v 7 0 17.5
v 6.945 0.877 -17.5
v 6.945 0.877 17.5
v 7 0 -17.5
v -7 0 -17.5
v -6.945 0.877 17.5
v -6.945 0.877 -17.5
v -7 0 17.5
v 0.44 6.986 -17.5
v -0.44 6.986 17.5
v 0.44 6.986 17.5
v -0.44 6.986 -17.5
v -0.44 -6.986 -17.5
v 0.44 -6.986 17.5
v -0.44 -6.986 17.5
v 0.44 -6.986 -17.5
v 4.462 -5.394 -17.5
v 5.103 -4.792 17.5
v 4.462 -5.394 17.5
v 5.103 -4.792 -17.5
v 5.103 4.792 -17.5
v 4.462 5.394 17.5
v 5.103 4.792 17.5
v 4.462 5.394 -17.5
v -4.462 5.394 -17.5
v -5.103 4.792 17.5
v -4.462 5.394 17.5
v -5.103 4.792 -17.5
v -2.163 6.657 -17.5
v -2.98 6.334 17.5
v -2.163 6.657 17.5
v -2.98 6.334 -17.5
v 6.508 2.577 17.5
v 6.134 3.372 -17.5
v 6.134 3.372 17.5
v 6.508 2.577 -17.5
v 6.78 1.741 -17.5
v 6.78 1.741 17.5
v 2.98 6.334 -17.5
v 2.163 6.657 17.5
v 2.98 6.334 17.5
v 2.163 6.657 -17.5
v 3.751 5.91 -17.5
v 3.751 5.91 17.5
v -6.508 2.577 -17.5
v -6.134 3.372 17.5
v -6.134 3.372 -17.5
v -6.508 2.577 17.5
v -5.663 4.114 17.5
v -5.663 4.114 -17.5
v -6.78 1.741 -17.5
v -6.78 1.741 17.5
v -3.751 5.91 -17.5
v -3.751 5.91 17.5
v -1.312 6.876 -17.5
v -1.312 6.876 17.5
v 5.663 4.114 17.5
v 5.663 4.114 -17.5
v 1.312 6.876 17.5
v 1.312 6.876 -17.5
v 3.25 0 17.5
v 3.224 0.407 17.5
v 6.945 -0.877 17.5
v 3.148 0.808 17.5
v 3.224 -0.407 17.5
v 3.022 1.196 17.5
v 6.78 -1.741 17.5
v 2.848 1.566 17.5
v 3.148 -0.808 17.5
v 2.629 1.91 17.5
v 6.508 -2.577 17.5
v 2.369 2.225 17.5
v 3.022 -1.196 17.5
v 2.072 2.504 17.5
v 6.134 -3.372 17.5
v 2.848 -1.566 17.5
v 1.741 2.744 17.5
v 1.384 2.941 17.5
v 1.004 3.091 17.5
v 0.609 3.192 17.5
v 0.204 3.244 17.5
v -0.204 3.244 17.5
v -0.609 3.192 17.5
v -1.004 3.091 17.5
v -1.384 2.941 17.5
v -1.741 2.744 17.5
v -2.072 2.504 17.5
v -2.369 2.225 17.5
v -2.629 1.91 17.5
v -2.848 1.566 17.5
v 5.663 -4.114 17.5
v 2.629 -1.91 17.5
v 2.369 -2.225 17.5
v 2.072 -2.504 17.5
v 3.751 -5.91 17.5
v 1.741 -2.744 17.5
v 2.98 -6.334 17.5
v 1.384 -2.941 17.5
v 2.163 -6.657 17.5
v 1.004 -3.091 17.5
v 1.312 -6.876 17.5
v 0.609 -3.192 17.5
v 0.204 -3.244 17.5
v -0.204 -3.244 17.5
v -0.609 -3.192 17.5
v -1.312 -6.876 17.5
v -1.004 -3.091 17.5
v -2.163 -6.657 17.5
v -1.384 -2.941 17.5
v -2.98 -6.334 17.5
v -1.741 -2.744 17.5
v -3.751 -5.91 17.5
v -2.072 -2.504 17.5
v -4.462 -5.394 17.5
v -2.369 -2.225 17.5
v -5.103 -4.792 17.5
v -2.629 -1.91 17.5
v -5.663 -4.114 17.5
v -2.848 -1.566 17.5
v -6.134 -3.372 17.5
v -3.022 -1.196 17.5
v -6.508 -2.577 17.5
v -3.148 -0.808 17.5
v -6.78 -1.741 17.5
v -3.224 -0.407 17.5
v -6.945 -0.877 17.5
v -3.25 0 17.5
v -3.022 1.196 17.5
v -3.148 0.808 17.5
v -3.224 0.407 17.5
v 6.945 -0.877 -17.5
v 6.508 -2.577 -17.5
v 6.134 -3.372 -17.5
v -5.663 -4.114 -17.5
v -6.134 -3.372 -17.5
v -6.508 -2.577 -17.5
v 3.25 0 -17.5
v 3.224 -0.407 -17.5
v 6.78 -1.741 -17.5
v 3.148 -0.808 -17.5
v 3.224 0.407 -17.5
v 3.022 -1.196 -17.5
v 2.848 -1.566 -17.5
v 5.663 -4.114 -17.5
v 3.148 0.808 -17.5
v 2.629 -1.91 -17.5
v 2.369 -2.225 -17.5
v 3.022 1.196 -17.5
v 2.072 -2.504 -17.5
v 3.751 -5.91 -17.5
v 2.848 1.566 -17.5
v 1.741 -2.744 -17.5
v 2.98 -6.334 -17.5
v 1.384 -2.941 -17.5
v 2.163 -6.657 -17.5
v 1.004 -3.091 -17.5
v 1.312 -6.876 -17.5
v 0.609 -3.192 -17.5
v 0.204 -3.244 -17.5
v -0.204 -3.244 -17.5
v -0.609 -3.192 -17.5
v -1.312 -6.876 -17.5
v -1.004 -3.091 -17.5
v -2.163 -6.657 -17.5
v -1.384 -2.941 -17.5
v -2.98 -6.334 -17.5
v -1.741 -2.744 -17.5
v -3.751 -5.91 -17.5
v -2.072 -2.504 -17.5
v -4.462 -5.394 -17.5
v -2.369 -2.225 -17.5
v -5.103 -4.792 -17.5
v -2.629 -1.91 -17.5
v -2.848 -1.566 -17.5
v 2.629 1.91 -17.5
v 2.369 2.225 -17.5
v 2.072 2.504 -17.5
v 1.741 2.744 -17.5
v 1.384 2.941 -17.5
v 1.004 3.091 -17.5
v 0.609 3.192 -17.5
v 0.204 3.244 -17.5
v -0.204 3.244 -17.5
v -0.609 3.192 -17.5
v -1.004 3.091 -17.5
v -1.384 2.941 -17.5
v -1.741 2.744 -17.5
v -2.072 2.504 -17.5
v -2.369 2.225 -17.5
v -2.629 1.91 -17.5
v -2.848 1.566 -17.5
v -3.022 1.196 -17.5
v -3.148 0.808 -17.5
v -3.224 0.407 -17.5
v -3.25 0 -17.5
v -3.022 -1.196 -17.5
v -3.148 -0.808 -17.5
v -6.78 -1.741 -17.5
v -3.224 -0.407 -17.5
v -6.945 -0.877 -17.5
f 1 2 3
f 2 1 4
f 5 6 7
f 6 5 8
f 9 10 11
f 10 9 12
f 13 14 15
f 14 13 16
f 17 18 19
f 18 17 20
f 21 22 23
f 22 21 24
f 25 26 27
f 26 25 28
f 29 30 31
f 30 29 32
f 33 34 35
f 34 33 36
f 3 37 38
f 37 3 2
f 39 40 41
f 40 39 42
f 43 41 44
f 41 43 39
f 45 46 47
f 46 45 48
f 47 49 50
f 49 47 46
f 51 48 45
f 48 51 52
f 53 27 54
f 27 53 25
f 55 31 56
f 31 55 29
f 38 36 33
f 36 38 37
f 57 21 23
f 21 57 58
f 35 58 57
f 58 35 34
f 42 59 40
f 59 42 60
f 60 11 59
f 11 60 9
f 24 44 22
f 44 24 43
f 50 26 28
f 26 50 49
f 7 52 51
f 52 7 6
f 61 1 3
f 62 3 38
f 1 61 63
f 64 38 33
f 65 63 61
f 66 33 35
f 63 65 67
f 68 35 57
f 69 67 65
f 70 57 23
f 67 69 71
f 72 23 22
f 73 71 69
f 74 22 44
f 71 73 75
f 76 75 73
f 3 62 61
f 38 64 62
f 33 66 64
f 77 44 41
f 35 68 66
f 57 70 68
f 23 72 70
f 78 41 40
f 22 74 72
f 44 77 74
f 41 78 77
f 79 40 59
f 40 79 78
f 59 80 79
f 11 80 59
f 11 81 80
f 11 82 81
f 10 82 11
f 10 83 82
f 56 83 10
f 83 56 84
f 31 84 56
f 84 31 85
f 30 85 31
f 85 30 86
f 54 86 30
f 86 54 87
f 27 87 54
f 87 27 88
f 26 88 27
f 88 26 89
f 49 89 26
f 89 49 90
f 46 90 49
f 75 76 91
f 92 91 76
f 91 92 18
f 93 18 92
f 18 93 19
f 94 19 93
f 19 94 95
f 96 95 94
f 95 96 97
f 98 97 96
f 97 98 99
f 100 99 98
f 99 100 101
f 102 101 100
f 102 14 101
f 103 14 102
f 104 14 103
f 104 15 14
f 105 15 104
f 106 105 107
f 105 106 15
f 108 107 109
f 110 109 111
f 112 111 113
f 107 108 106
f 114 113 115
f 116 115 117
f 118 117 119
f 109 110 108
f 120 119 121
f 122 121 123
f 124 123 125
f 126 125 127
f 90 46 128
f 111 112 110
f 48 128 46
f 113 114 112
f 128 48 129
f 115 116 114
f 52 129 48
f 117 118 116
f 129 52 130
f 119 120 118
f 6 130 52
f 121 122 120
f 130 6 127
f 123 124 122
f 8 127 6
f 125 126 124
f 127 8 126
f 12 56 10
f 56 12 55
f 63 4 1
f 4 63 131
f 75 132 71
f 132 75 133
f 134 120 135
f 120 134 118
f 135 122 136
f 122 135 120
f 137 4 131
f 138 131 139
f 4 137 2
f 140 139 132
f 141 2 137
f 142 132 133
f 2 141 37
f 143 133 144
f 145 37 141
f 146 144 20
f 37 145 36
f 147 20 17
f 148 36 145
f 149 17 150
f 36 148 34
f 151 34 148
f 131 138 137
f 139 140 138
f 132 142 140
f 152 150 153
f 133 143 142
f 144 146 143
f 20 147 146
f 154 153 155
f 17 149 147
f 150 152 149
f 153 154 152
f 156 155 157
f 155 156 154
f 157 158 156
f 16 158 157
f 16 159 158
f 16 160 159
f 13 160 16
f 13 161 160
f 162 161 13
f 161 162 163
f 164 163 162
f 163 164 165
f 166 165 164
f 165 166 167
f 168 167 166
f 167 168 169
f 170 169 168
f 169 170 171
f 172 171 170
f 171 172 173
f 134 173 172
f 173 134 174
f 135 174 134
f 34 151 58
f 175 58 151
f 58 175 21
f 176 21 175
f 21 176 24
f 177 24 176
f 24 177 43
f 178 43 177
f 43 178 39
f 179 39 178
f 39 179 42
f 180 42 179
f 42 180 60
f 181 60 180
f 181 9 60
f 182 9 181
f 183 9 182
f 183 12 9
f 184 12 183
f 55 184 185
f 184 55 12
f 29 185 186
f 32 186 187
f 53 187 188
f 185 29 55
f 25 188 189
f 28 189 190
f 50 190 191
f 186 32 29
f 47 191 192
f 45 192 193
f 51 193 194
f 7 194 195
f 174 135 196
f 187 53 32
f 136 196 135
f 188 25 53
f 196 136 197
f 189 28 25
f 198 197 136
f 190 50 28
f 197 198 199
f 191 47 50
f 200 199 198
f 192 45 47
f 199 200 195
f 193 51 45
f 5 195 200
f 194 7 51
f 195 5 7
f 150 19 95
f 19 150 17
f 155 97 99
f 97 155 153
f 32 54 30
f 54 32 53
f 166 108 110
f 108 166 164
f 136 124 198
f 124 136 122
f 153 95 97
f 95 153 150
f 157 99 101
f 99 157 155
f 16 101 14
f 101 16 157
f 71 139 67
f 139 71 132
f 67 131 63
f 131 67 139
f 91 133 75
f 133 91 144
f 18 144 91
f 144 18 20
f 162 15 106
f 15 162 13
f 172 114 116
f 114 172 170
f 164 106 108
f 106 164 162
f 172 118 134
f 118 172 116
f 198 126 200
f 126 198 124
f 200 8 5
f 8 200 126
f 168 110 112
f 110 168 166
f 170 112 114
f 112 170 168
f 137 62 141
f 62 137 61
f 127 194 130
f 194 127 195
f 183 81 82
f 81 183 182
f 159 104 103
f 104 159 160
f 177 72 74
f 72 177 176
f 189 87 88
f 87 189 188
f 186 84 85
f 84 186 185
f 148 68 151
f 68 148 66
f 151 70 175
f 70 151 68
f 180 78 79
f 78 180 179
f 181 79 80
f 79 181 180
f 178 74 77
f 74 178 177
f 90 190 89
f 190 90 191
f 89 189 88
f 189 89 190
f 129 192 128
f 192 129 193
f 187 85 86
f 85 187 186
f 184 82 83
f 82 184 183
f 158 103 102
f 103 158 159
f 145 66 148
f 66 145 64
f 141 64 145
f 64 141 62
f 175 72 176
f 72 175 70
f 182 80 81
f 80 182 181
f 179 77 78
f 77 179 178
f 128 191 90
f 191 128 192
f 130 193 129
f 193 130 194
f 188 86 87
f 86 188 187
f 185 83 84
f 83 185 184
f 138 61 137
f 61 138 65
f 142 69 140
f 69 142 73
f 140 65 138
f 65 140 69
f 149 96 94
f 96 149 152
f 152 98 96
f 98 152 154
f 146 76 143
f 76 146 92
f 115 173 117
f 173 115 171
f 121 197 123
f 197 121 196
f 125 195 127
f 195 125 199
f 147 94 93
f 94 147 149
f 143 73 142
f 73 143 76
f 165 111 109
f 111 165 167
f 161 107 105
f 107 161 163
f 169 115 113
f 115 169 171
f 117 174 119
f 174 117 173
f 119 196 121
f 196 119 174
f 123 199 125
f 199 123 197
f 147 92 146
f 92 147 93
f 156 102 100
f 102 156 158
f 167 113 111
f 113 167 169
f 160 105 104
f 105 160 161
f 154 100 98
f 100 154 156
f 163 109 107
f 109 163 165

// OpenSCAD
$fn = 50;


difference() {
	union() {
		translate(v = [0, 0, -17.5000000000]) {
			cylinder(h = 35, r = 7.0000000000);
		}
	}
	union() {
		translate(v = [0, 0, -100.0000000000]) {
			cylinder(h = 200, r = 3.2500000000);
		}
	}
}
